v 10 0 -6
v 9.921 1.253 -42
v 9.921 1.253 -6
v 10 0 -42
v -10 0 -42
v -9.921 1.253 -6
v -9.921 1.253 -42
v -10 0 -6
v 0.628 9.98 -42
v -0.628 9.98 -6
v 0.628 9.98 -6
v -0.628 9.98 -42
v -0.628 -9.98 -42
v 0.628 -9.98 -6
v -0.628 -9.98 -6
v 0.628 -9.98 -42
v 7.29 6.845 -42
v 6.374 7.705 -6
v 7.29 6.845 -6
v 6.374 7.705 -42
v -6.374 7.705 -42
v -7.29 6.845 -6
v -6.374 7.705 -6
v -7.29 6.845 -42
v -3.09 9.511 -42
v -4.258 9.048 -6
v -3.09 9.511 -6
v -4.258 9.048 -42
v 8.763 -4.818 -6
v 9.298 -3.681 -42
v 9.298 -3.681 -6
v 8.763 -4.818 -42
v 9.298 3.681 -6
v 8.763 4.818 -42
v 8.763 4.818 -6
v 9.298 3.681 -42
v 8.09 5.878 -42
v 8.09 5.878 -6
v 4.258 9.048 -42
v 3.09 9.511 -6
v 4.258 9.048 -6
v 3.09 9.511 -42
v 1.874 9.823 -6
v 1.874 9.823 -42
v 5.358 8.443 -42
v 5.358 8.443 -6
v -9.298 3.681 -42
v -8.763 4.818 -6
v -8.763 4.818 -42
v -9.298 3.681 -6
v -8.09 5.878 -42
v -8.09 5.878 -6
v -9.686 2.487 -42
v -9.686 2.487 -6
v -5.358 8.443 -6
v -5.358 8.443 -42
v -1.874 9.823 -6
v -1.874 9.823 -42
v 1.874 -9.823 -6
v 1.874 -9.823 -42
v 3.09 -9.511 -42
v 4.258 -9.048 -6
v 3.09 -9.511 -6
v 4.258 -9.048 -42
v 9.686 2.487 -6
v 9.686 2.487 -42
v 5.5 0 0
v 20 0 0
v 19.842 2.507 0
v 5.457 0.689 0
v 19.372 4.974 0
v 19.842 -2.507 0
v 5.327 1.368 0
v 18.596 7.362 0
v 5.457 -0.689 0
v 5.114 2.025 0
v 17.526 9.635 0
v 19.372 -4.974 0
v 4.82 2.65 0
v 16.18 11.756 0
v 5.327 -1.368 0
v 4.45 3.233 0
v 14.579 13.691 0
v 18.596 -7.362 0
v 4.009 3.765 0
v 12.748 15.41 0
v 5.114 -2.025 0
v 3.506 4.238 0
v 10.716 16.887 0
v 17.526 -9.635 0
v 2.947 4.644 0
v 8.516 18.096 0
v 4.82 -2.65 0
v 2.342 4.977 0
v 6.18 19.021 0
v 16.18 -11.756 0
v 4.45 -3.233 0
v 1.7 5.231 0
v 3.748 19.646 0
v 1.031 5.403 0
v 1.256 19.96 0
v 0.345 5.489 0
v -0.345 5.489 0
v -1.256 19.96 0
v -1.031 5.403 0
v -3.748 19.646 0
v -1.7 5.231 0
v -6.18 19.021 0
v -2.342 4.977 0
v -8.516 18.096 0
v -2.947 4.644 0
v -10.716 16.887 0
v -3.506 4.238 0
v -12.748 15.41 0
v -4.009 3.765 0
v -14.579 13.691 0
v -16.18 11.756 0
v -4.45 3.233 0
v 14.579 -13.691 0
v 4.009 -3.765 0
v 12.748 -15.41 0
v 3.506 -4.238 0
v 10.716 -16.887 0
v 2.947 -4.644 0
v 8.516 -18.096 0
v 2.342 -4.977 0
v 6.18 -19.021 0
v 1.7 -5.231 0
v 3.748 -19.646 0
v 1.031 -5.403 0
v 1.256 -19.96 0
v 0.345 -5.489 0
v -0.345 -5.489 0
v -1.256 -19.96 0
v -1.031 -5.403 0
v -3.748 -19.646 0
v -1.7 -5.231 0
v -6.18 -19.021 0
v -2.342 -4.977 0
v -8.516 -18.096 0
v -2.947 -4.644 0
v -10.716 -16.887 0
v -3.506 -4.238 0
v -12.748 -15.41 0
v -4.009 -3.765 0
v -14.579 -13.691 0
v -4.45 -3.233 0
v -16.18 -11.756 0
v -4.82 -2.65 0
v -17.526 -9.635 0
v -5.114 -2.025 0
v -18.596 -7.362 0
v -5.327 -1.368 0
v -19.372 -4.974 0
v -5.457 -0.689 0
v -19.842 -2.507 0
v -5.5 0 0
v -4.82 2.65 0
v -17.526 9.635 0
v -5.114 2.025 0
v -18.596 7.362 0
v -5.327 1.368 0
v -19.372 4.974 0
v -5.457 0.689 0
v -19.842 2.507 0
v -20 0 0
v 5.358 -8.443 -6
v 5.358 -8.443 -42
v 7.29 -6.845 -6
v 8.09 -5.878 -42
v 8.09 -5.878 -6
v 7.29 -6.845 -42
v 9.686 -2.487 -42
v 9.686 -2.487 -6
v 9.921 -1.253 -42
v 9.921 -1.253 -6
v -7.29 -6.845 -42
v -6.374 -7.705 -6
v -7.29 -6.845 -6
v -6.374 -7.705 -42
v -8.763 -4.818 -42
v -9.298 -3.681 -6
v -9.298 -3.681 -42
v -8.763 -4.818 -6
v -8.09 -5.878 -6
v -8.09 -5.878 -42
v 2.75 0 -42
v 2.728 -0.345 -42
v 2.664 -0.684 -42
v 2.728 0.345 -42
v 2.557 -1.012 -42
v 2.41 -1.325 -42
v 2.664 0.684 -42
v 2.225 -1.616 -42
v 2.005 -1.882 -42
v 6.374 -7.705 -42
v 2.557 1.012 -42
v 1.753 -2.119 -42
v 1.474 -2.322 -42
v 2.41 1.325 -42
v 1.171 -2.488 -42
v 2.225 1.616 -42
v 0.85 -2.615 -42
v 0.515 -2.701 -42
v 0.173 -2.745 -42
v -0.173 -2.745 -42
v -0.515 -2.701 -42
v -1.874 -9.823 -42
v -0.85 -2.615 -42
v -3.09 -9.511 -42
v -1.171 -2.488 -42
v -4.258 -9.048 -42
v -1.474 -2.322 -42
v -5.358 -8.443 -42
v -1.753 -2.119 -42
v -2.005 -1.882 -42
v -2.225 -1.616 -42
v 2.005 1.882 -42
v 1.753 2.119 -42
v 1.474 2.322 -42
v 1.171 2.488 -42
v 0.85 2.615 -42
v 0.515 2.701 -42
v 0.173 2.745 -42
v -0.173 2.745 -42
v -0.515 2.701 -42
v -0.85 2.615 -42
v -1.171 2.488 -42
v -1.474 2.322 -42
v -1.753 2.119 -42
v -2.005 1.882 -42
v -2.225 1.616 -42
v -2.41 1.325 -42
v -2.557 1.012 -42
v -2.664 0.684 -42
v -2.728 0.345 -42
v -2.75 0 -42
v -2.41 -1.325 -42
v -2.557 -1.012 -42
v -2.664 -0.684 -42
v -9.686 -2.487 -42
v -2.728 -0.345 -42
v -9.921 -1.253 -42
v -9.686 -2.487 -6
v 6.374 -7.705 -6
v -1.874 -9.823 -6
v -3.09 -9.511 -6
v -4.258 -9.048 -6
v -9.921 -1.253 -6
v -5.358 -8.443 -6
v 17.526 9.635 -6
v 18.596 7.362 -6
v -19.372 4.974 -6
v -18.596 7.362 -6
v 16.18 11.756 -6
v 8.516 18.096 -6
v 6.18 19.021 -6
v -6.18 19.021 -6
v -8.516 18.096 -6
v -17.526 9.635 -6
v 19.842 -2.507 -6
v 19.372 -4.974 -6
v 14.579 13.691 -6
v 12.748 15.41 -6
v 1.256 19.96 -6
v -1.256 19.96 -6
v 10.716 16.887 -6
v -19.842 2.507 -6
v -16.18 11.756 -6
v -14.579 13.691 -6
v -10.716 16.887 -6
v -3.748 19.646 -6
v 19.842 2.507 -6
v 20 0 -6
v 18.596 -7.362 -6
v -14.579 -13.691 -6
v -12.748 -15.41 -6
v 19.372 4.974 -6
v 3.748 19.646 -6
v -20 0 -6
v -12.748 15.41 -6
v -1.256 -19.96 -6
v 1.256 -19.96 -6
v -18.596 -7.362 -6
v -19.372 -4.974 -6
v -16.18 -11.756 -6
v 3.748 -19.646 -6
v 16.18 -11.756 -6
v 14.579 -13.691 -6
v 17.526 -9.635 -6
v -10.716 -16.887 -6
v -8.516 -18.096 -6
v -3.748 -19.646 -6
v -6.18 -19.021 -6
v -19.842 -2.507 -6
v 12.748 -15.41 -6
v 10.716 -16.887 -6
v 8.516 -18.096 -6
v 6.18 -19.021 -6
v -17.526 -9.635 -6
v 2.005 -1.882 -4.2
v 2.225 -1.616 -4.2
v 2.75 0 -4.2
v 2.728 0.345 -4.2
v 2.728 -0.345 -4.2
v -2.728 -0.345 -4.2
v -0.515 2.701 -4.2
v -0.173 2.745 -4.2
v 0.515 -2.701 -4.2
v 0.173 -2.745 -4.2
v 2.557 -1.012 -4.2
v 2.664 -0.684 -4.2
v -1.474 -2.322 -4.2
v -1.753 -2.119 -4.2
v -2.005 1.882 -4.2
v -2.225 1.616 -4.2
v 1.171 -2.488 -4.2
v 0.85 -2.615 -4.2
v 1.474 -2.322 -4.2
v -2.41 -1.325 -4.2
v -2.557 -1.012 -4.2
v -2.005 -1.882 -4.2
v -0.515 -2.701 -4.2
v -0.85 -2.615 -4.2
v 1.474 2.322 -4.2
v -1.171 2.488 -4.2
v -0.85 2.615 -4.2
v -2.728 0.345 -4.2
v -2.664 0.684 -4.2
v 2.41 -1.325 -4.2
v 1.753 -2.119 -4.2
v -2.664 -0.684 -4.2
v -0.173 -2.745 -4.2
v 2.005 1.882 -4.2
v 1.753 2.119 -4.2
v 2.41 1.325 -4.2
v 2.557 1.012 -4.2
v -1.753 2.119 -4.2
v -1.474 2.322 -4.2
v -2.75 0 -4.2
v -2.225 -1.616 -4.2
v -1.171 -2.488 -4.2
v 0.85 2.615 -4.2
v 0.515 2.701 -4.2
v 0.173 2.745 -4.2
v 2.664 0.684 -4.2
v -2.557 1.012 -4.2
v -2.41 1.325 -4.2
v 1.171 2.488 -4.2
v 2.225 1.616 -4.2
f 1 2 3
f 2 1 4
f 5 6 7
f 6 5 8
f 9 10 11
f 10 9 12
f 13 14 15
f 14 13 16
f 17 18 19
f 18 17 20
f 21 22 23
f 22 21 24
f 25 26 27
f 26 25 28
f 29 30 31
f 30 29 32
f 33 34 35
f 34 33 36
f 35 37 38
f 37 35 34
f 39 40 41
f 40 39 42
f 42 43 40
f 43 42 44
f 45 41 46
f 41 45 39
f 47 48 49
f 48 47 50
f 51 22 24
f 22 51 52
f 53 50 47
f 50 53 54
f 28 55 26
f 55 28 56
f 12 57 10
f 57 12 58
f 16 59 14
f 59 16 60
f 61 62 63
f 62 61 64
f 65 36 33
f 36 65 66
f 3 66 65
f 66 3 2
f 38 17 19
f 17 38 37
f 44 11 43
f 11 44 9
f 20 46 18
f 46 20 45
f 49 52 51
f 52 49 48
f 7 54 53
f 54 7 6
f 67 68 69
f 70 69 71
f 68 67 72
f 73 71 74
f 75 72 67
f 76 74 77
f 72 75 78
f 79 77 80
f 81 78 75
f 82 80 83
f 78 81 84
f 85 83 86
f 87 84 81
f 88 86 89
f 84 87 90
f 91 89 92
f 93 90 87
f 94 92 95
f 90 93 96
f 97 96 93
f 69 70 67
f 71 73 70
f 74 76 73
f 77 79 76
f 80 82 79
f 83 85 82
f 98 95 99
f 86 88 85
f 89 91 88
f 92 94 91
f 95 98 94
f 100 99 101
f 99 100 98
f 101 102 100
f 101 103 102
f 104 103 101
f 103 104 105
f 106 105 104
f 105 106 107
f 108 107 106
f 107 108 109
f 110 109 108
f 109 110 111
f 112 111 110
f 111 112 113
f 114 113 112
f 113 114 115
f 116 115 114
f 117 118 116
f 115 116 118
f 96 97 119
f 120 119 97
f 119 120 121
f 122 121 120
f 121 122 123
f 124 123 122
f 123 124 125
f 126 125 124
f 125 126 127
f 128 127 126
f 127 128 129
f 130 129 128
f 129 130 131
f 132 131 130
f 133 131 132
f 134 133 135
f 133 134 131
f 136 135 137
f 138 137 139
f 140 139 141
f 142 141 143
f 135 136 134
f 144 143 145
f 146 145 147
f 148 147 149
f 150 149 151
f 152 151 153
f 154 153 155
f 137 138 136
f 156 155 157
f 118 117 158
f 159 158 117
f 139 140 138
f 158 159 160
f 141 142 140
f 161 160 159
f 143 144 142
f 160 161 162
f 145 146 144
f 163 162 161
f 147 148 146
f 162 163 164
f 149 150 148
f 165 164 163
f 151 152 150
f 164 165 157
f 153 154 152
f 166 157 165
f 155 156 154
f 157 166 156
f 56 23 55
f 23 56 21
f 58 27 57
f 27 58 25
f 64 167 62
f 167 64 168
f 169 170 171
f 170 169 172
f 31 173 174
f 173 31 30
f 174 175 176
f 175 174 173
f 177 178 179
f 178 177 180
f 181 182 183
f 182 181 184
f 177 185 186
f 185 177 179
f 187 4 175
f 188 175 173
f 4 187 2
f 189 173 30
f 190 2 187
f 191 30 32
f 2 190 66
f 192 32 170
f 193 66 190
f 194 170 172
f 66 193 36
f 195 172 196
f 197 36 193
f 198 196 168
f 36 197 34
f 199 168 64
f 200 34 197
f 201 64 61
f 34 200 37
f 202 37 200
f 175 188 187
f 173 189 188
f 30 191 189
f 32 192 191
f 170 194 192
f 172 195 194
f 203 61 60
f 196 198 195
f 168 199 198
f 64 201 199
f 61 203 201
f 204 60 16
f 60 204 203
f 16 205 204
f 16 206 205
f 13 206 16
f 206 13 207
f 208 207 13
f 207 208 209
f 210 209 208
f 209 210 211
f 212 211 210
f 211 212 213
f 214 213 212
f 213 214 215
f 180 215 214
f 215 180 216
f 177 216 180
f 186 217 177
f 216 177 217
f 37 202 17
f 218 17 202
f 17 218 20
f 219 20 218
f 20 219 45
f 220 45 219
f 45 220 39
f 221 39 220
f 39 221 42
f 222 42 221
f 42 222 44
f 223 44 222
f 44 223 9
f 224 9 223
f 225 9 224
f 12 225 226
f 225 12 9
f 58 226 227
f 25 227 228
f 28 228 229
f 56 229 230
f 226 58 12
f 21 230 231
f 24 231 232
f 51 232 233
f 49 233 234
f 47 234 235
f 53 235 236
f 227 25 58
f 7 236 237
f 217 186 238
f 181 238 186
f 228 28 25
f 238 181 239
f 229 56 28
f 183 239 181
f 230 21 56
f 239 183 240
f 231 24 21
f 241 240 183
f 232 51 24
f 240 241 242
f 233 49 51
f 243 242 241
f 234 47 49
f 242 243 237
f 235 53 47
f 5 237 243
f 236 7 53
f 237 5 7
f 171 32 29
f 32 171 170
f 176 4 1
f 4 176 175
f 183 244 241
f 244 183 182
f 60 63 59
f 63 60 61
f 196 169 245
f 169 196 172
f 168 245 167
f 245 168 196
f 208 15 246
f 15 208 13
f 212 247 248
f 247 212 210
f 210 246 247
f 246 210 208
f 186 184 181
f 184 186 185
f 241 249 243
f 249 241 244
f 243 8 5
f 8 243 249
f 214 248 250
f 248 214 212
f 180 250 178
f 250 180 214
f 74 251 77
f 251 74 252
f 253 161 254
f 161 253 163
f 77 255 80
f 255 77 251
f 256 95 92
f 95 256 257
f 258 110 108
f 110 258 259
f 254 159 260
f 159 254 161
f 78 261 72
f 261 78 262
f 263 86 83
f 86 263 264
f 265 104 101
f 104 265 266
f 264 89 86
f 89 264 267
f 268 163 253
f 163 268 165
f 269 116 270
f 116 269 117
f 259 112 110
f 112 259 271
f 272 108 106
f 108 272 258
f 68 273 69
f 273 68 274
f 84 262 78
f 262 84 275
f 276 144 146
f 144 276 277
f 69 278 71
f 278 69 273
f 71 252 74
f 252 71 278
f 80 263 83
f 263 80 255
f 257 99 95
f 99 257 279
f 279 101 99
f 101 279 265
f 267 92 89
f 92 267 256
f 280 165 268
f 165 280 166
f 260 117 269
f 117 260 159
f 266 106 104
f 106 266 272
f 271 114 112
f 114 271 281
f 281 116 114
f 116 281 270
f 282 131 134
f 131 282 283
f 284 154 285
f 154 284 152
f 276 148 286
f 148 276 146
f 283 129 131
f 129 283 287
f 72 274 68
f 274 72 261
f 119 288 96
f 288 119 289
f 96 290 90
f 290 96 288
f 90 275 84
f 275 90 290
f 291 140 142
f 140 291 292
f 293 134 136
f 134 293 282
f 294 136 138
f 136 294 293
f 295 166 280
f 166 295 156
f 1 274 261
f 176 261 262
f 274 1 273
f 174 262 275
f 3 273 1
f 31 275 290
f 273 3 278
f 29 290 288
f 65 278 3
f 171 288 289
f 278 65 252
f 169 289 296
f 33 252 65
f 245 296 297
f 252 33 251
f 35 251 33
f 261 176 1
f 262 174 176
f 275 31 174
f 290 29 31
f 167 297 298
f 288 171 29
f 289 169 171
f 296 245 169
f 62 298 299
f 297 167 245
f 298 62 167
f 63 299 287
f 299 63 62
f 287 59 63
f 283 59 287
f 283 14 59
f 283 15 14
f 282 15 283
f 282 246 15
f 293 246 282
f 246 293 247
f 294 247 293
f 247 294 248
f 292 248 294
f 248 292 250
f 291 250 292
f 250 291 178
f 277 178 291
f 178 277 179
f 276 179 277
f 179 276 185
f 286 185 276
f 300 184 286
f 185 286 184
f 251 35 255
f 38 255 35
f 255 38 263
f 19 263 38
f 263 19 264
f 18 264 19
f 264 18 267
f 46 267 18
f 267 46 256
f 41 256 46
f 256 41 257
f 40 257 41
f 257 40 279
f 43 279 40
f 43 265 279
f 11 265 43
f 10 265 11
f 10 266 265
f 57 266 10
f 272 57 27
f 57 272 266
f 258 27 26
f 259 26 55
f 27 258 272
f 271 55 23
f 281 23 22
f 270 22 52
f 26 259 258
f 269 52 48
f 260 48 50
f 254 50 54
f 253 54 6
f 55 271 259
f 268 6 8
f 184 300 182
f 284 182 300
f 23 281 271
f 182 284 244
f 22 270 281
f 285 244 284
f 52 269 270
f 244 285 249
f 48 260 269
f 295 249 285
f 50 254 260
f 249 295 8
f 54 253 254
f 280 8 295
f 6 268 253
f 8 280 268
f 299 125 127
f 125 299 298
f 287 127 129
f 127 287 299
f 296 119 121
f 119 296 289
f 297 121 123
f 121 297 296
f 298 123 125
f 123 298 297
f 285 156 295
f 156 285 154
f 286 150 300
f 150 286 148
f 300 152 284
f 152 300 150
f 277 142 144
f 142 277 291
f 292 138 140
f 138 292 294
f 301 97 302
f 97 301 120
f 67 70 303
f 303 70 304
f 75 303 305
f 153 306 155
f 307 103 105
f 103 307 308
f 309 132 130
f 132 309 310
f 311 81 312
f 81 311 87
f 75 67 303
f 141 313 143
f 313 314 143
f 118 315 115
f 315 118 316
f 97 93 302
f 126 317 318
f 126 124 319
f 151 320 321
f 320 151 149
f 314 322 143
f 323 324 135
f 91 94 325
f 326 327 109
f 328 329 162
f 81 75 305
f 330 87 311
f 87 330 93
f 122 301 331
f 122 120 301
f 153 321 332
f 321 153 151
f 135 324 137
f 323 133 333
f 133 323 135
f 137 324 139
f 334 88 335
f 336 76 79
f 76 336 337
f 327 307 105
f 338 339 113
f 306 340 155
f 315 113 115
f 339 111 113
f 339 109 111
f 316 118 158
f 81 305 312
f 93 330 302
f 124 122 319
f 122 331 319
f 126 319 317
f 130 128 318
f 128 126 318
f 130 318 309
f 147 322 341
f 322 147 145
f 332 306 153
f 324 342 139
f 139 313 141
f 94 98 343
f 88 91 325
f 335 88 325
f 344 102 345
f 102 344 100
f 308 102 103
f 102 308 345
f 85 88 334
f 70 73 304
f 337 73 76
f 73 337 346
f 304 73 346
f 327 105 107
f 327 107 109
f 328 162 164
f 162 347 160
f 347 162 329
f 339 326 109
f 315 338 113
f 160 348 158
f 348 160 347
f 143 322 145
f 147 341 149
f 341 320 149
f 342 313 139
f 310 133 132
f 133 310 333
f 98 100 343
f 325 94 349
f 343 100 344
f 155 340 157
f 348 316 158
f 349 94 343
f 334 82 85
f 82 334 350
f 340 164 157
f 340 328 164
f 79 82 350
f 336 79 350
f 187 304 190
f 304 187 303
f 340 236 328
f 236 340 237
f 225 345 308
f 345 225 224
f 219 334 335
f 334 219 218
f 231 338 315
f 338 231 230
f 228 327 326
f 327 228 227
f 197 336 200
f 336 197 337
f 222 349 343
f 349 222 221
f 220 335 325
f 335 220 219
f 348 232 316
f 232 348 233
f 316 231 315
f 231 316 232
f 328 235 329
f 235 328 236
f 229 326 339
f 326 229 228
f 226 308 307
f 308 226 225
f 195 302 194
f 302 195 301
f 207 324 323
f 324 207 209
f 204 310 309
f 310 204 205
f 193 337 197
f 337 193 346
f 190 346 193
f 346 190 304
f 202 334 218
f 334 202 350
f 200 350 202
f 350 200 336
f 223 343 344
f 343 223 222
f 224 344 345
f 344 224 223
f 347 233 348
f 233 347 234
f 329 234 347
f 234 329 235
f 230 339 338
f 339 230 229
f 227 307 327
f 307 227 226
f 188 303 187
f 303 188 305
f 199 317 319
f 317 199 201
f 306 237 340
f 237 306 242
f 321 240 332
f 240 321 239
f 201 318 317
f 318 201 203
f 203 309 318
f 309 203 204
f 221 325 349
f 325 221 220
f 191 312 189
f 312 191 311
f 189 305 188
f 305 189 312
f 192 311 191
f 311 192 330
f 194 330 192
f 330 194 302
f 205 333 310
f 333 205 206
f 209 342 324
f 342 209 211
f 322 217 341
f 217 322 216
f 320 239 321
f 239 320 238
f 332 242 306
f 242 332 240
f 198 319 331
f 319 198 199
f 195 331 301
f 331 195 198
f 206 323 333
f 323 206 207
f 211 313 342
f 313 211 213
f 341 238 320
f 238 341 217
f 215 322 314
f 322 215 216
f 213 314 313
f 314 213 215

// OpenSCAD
$fn = 50;


difference() {
	union() {
		translate(v = [0, 0, -42.0000000000]) {
			cylinder(h = 42, r = 10.0000000000);
		}
		translate(v = [0, 0, -6.0000000000]) {
			cylinder(h = 6, r = 20.0000000000);
		}
	}
	union() {
		translate(v = [0, 0, 0]) {
			rotate(a = [0, 0, 0]) {
				difference() {
					union() {
						#translate(v = [0, 0, -42.0000000000]) {
							cylinder(h = 42, r = 2.2500000000);
						}
						#translate(v = [0, 0, -4.2000000000]) {
							cylinder(h = 4.2000000000, r = 10.0000000000, r1 = 2.7500000000, r2 = 5.5000000000);
						}
						#translate(v = [0, 0, -42.0000000000]) {
							cylinder(h = 42, r = 2.7500000000);
						}
						#translate(v = [0, 0, -42.0000000000]) {
							cylinder(h = 42, r = 2.2500000000);
						}
					}
					union();
				}
			}
		}
	}
}
